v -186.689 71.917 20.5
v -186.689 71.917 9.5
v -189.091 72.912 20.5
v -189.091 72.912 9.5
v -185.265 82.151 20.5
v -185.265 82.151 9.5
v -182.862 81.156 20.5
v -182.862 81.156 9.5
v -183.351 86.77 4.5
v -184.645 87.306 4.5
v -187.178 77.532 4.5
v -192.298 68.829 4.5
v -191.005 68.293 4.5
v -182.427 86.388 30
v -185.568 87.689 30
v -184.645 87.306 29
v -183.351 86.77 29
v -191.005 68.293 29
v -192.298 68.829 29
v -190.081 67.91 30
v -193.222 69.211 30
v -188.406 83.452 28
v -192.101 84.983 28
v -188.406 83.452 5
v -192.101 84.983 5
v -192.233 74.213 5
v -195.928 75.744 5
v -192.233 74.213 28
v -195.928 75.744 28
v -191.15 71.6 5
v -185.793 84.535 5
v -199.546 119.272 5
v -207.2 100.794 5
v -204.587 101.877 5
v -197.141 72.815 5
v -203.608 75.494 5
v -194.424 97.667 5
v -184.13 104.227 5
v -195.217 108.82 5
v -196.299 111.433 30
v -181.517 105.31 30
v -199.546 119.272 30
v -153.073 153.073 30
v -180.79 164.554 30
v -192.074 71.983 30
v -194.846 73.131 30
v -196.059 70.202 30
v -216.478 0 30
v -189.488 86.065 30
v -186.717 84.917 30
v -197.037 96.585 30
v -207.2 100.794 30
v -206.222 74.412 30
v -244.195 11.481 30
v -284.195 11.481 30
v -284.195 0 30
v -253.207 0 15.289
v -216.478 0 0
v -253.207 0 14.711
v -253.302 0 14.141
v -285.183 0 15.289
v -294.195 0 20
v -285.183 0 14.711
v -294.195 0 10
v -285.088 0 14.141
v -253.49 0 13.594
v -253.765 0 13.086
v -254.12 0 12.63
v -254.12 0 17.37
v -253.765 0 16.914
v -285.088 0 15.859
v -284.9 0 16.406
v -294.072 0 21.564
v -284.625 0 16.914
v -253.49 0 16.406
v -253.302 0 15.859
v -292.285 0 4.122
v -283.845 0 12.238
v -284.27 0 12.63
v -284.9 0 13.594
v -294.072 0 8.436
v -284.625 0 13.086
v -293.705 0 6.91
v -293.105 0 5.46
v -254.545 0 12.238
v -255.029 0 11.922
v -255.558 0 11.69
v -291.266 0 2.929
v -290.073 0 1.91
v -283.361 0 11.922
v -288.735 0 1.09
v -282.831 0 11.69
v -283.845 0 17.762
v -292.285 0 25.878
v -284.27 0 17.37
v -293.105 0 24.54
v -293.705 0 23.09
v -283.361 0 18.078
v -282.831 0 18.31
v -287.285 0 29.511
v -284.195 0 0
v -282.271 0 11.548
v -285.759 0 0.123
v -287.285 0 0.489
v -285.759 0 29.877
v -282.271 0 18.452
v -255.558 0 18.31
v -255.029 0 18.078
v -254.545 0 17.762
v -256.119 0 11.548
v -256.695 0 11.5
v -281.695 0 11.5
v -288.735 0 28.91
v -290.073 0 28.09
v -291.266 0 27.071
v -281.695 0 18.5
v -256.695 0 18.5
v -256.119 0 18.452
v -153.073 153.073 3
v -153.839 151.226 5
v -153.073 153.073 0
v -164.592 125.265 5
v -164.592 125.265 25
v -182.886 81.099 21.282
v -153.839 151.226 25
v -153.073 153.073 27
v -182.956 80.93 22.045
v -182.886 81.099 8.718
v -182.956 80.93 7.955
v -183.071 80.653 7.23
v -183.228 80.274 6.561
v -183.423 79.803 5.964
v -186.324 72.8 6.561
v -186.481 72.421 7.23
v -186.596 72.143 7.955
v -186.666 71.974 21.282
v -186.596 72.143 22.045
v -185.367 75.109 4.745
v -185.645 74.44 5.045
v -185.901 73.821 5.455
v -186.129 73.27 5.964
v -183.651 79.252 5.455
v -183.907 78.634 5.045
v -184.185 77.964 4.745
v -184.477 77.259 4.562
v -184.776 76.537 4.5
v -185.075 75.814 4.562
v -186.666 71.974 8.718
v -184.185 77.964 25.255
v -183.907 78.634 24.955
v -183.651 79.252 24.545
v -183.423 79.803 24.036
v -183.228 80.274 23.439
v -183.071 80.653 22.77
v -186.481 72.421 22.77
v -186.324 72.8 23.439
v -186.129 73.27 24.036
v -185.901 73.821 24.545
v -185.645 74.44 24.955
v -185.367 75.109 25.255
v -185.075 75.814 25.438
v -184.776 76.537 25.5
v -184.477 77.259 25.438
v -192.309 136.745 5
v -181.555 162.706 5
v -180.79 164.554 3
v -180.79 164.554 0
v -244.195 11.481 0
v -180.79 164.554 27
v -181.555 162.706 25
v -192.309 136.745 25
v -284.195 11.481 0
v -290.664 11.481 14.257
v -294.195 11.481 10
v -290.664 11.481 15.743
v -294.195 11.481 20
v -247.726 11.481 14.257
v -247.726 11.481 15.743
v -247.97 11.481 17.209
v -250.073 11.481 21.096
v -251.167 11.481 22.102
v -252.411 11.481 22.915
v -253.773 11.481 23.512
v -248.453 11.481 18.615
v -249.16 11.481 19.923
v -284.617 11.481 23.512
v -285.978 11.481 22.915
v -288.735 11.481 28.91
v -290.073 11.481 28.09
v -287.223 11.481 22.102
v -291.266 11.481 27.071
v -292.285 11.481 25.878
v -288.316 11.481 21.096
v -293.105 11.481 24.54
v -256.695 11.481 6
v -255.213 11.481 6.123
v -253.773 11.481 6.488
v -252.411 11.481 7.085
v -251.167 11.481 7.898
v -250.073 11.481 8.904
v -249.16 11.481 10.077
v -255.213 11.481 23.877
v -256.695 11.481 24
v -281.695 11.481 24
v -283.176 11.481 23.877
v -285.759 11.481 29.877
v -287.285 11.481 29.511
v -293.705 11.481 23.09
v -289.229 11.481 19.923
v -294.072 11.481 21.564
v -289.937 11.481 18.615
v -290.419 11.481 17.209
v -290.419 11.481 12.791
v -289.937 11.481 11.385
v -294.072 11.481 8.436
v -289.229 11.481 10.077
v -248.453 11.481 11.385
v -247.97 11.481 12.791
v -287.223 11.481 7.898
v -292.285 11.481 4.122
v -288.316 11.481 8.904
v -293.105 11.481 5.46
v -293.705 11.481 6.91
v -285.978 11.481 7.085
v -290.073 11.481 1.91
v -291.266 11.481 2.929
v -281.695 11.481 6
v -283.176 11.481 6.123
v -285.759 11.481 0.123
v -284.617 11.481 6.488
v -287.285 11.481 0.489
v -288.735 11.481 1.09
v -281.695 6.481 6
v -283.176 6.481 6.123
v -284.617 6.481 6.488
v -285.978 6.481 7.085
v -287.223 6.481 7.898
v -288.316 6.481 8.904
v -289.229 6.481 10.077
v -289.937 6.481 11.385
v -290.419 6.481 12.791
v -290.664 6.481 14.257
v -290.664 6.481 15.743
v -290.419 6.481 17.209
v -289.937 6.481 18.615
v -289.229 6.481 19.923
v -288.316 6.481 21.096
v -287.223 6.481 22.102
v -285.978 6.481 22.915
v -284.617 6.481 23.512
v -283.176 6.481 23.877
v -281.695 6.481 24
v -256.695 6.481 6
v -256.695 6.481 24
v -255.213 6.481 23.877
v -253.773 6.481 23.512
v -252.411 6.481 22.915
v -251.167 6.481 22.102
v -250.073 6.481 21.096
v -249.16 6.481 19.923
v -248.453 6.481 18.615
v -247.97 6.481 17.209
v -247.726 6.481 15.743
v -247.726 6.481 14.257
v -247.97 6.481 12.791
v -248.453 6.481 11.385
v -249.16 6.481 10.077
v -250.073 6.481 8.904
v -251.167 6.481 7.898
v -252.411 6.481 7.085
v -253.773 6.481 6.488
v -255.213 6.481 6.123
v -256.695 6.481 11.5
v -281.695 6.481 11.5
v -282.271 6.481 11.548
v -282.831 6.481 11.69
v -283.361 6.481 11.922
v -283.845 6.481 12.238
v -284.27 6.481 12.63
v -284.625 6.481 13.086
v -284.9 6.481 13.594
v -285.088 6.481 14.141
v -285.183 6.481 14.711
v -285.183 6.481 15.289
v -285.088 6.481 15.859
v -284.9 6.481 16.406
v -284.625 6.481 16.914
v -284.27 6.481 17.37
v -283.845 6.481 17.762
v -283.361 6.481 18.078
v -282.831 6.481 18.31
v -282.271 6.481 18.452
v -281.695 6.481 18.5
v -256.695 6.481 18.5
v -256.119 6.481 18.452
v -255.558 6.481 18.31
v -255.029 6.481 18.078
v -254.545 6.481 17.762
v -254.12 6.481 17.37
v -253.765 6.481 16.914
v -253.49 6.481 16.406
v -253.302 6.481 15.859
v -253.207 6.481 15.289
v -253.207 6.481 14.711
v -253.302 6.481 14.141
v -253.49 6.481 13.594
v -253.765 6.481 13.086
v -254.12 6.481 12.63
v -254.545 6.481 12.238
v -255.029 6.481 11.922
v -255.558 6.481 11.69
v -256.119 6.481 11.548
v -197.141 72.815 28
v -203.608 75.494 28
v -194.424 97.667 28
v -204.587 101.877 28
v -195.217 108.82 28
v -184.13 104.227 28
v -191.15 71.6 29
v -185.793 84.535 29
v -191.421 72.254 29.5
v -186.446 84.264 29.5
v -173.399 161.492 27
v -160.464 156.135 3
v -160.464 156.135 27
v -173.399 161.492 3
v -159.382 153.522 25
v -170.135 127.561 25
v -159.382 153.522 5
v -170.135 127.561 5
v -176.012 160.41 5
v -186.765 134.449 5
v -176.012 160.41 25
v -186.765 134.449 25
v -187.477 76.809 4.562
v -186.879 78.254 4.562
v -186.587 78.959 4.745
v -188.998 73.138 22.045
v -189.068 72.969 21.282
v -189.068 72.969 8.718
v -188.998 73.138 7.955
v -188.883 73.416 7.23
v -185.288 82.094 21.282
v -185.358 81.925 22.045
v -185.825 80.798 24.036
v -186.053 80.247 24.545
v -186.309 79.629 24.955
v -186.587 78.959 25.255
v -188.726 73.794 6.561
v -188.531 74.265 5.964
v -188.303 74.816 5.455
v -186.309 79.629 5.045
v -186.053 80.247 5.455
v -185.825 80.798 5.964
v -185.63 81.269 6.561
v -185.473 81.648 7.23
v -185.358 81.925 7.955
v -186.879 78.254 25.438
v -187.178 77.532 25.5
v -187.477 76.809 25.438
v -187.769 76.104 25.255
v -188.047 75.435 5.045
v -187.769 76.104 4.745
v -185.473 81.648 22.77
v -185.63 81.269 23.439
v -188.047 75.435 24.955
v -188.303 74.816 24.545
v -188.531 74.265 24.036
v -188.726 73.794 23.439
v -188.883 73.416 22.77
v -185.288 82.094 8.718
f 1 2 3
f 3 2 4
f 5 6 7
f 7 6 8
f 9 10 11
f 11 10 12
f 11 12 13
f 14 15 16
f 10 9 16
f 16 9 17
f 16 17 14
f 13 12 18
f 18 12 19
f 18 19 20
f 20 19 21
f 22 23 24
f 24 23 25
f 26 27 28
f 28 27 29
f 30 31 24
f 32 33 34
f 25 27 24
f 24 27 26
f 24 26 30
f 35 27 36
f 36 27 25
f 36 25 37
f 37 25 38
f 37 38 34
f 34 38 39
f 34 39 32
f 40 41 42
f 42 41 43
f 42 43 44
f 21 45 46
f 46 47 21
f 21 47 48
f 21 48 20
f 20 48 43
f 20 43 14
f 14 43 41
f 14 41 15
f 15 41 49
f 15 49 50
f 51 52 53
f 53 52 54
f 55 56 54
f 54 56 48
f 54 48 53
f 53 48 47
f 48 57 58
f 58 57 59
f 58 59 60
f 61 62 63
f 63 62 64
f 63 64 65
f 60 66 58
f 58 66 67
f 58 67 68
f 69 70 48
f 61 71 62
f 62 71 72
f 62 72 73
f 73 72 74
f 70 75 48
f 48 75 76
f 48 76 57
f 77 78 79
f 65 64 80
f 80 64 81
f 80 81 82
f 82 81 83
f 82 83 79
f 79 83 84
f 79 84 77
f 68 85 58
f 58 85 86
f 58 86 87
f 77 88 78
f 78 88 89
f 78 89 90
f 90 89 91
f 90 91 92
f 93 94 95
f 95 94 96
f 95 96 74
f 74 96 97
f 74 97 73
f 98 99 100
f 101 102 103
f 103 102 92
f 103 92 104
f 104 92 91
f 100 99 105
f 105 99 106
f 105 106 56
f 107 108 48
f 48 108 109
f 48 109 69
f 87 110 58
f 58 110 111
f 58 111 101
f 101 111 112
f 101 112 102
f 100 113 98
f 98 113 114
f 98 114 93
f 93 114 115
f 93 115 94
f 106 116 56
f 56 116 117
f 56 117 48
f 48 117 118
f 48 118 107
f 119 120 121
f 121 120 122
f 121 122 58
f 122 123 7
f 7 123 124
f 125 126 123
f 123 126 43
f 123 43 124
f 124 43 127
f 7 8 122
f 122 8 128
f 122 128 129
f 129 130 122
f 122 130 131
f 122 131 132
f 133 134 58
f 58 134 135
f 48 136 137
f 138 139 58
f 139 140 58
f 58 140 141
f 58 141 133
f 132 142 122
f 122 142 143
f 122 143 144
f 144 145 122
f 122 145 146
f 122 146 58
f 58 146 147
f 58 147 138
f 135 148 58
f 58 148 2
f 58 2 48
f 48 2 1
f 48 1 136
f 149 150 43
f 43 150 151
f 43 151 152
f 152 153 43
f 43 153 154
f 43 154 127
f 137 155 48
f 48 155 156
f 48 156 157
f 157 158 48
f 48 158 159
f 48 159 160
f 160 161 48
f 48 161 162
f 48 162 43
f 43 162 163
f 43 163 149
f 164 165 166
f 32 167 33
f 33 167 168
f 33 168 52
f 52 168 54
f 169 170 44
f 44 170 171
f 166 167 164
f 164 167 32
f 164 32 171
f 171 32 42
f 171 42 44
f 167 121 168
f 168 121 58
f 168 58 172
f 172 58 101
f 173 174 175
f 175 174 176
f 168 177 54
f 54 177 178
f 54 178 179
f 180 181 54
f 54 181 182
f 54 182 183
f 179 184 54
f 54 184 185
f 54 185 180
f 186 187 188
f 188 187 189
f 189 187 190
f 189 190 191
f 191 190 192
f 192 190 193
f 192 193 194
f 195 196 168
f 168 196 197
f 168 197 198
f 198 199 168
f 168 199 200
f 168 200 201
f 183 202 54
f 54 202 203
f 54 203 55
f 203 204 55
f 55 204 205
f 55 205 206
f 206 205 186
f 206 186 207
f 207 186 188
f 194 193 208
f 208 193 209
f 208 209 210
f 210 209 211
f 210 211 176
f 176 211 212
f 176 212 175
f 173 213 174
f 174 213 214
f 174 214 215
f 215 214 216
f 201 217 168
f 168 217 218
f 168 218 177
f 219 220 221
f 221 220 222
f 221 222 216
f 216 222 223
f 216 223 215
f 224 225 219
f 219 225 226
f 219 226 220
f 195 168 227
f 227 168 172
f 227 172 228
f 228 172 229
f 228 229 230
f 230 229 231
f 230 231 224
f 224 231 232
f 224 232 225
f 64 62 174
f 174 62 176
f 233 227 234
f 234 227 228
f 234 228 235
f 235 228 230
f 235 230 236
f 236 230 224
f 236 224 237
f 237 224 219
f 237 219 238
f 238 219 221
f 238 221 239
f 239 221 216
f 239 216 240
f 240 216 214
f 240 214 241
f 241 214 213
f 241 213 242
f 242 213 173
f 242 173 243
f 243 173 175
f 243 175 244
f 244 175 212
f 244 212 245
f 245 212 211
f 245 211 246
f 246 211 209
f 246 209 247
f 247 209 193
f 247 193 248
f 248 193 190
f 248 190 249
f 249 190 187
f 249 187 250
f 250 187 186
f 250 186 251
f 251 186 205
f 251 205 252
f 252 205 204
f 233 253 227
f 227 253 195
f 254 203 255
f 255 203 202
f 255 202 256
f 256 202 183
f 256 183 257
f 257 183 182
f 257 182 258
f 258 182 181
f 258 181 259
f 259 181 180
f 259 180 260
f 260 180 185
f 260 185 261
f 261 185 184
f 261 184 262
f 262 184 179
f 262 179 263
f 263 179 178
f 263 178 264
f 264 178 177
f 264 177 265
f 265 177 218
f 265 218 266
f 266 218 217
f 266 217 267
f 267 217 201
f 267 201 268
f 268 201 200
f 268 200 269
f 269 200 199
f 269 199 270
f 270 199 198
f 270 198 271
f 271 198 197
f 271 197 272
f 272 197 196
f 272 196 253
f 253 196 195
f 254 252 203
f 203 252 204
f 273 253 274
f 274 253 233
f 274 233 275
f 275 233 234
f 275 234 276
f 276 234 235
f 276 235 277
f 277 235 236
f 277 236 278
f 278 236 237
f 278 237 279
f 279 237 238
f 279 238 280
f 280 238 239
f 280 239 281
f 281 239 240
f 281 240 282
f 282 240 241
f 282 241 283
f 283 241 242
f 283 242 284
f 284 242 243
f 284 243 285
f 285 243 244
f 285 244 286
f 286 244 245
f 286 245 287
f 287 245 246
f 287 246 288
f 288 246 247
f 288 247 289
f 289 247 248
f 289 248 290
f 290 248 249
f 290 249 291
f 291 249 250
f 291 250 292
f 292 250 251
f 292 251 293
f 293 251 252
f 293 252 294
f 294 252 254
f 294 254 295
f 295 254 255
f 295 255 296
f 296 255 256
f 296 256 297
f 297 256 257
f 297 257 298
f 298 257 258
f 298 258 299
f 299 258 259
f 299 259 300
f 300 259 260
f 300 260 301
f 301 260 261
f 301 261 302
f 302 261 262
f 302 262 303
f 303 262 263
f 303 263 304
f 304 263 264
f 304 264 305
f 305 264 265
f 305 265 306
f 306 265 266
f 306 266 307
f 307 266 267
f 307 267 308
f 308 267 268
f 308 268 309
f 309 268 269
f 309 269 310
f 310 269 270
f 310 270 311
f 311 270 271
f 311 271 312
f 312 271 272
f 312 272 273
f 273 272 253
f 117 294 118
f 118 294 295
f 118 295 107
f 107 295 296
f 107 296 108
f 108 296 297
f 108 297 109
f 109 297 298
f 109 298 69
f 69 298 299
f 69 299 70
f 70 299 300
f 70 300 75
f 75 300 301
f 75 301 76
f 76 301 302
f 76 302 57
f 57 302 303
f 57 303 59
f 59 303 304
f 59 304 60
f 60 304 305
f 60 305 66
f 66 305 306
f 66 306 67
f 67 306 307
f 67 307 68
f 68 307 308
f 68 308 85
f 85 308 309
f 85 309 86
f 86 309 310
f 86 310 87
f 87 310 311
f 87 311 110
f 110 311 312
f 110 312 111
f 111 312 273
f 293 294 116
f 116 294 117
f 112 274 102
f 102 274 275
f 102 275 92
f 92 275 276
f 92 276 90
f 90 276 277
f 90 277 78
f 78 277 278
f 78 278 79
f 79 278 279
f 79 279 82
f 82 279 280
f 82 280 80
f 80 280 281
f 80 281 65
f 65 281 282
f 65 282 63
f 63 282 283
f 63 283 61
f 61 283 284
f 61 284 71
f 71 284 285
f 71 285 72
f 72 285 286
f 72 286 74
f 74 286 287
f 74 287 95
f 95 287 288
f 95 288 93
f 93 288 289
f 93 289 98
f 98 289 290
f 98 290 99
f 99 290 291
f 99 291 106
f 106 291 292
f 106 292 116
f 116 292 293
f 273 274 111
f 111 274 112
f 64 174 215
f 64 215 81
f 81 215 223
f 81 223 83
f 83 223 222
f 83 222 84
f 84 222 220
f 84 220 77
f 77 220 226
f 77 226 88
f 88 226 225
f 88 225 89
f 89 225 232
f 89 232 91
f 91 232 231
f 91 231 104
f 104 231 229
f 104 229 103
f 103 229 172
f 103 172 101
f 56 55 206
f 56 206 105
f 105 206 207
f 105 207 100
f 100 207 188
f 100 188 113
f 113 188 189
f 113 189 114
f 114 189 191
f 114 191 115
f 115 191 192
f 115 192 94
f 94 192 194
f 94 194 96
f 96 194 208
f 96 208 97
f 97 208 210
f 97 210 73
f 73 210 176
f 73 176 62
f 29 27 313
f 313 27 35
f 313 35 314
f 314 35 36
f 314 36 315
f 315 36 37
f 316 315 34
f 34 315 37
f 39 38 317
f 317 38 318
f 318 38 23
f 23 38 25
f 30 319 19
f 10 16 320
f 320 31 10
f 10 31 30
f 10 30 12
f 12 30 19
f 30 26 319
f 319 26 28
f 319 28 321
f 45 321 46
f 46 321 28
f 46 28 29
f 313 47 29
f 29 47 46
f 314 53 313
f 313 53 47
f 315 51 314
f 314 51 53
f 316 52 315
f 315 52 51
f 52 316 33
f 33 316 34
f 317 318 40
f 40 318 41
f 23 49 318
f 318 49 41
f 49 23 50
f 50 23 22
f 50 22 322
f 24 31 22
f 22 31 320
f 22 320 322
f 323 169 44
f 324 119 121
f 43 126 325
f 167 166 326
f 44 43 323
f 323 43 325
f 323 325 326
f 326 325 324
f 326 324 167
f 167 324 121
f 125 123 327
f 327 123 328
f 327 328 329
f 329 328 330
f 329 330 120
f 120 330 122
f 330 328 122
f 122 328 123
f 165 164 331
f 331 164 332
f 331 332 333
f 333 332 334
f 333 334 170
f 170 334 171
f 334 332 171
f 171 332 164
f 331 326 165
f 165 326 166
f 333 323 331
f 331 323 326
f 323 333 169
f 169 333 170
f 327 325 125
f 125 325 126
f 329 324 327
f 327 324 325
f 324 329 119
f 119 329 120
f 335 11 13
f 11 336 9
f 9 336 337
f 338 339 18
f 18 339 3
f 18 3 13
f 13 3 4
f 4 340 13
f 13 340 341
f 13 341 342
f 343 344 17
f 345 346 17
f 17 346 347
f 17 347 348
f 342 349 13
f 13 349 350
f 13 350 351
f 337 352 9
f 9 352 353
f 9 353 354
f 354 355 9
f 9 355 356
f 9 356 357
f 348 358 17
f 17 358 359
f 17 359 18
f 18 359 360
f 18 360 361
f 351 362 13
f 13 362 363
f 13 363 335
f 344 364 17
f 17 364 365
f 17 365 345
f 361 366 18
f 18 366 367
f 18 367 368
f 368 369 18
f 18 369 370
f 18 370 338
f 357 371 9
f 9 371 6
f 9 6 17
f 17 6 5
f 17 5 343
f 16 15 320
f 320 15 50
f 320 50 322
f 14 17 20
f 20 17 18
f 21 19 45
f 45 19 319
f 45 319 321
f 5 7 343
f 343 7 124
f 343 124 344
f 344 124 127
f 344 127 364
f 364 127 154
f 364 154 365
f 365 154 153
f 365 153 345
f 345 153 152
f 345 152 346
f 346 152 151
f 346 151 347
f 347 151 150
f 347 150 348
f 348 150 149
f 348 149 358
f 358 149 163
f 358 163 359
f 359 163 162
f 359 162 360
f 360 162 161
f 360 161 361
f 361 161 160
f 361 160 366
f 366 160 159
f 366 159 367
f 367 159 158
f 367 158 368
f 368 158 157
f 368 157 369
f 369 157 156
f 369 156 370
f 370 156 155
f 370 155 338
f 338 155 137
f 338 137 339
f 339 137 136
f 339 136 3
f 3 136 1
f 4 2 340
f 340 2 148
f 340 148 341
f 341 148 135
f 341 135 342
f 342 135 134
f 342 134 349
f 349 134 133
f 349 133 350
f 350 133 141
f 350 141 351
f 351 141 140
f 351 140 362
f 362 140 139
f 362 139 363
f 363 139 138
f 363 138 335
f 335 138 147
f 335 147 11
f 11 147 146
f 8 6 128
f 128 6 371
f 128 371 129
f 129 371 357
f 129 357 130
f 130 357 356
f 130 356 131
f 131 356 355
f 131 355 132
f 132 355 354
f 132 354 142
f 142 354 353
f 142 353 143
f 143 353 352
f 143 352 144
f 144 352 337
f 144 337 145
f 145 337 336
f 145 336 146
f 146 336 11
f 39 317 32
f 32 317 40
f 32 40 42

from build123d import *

# Parameters (mm, degrees)
BOSS_EXTRUDE1_DEPTH = 30
SKETCH4_W           = 30
SKETCH4_H           = 11.480502971
BOSS_EXTRUDE2_DEPTH = 50
CUT_EXTRUDE1_DEPTH  = 5
CUT_EXTRUDE3_DEPTH  = 6.480502971
FILLET1_R           = 10
CHAMFER3_SIZE       = 22.5
CHAMFER3_SIZE2      = 8.610377228
CHAMFER1_SIZE       = 15
CHAMFER1_SIZE2      = 20.645728807
CHAMFER2_SIZE2      = 20.645728807
CHAMFER2_SIZE       = 15
CUT_EXTRUDE4_DEPTH  = 25
CUT_EXTRUDE5_DEPTH  = 25
SKETCH9_W           = 20.645728807
SKETCH9_H           = 30
CUT_EXTRUDE6_DEPTH  = 40
SKETCH10_W          = 10
SKETCH10_H          = 12.413129657
BOSS_EXTRUDE3_DEPTH = 12
SKETCH11_W          = 31
SKETCH11_H          = 30
CUT_EXTRUDE7_DEPTH  = 2
SKETCH12_W          = 25.5
SKETCH12_H          = 20
CUT_EXTRUDE8_DEPTH  = 4
CHAMFER4_SIZE       = 2
CUT_EXTRUDE9_DEPTH  = 30
SKETCH16_W          = 6
SKETCH16_H          = 20
CUT_EXTRUDE10_DEPTH = 30.1
CHAMFER6_SIZE       = 2
BOSS_EXTRUDE4_DEPTH = 25.5
SKETCH18_W          = 2.6
SKETCH18_H          = 4.5
BOSS_EXTRUDE5_DEPTH = 10
CHAMFER7_SIZE       = 1
FILLET2_R           = 5
CHAMFER8_SIZE       = 8


with BuildPart() as part:
    # Sketch1 → Boss-Extrude1 (new body)
    with BuildSketch(Plane.XY):
        Polygon((0, 216.478440058), (-153.073372946, 153.073372946), (-216.478440058, 0), (-244.194826034, 0), (-244.194826034, 11.480502971), (-176.034378888, 176.034378888), (0, 248.950206067), align=None)
    extrude(amount=BOSS_EXTRUDE1_DEPTH)

    # Sketch4 → Boss-Extrude2 (add)
    with BuildSketch(Plane.ZY.offset(244.194826034)):
        with Locations((15, 5.740251485)):
            Rectangle(SKETCH4_W, SKETCH4_H)
    extrude(amount=BOSS_EXTRUDE2_DEPTH)

    # Sketch5 → Cut-Extrude1 (cut)
    with BuildSketch(Plane(origin=(0, 11.480502971, 0), x_dir=(1, 0, 0), z_dir=(0, 1, 0))):
        with BuildLine():
            Line((-281.694826034, -6), (-256.694826034, -6))
            ThreePointArc((-256.694826034, -6), (-247.694826034, -15), (-256.694826034, -24))
            Line((-256.694826034, -24), (-281.694826034, -24))
            ThreePointArc((-281.694826034, -24), (-290.694826034, -15), (-281.694826034, -6))
        make_face()
    extrude(amount=-CUT_EXTRUDE1_DEPTH, mode=Mode.SUBTRACT)

    # Sketch7 → Cut-Extrude3 (cut)
    with BuildSketch(Plane(origin=(0, 6.480502971, 0), x_dir=(1, 0, 0), z_dir=(0, 1, 0))):
        with BuildLine():
            Line((-256.694826034, -11.5), (-281.694826034, -11.5))
            ThreePointArc((-281.694826034, -11.5), (-285.194826034, -15), (-281.694826034, -18.5))
            Line((-281.694826034, -18.5), (-256.694826034, -18.5))
            ThreePointArc((-256.694826034, -18.5), (-253.194826034, -15), (-256.694826034, -11.5))
        make_face()
    extrude(amount=-CUT_EXTRUDE3_DEPTH, mode=Mode.SUBTRACT)

    # Fillet1
    fillet1_edges = [part.edges().sort_by_distance(p)[0] for p in [
        (-294.194826034, 5.740251485, 0),
        (-294.194826034, 5.740251485, 30),
    ]]
    fillet(fillet1_edges, radius=FILLET1_R)

    # Chamfer3
    chamfer3_edges = [part.edges().sort_by_distance(p)[0] for p in [
        (0, 248.950206067, 15),
    ]]
    chamfer3_side = [part.faces().sort_by_distance(p)[0] for p in [
        (-88.017189444, 212.492292478, 15),
    ]]
    chamfer(chamfer3_edges, length=CHAMFER3_SIZE, length2=CHAMFER3_SIZE2, reference=chamfer3_side[0])

    # Chamfer1
    chamfer1_edges = [part.edges().sort_by_distance(p)[0] for p in [
        (0, 228.409134449, 0),
    ]]
    chamfer1_side = [part.faces().sort_by_distance(p)[0] for p in [
        (0, 228.409134449, 15),
    ]]
    chamfer(chamfer1_edges, length=CHAMFER1_SIZE, length2=CHAMFER1_SIZE2, reference=chamfer1_side[0])

    # Chamfer2
    chamfer2_edges = [part.edges().sort_by_distance(p)[0] for p in [
        (0, 228.409134449, 30),
    ]]
    chamfer2_side = [part.faces().sort_by_distance(p)[0] for p in [
        (0, 228.409134449, 29.7),
    ]]
    chamfer(chamfer2_edges, length=CHAMFER2_SIZE - 0.0001, length2=CHAMFER2_SIZE2 - 0.0001, reference=chamfer2_side[0])  # a hair under: the kernel refuses the full size

    # Sketch3 → Cut-Extrude4 (cut)
    with BuildSketch(Plane.XY.offset(30)):
        Polygon((-186.689323664, 71.91728881), (-182.86248934, 81.156084136), (-192.101284666, 84.982918459), (-184.129988769, 104.227329121), (-202.60757942, 111.880997769), (-206.434413743, 102.642202444), (-194.423979821, 97.667317823), (-203.608382197, 75.494209043), (-197.14122547, 72.815425016), (-195.928118989, 75.744123134), align=None)
        Polygon((-81.156084136, 182.86248934), (-71.91728881, 186.689323664), (-75.744123134, 195.928118989), (-72.815425016, 197.14122547), (-75.494209043, 203.608382197), (-97.667317823, 194.423979821), (-102.642202444, 206.434413743), (-111.880997769, 202.60757942), (-106.906113148, 190.597145497), (-104.227329121, 184.129988769), (-84.982918459, 192.101284666), align=None)
    extrude(amount=-CUT_EXTRUDE4_DEPTH, mode=Mode.SUBTRACT)

    # Sketch8 → Cut-Extrude5 (cut)
    with BuildSketch(Plane.XY.offset(30)):
        Polygon((-66.282610192, 194.435244969), (-67.813343921, 198.130763099), (-66.889464389, 198.513446531), (-70.716298712, 207.752241857), (-71.640178245, 207.369558424), (-73.170911974, 211.065076554), (-72.247032442, 211.447759987), (-74.925816468, 217.914916714), (-46.28555096, 229.778103118), (-43.606766934, 223.31094639), (-38.987369271, 225.224363552), (-37.456635542, 221.528845422), (-42.076033204, 219.61542826), (-38.249198881, 210.376632935), (-33.629801218, 212.290050097), (-32.099067489, 208.594531967), align=None)
    extrude(amount=-CUT_EXTRUDE5_DEPTH, mode=Mode.SUBTRACT)

    # Sketch9 → Cut-Extrude6 (cut)
    with BuildSketch(Plane(origin=(0, 240.339828839, 0), x_dir=(1, 0, 0), z_dir=(0, 1, 0))):
        with Locations((-10.322864404, -15)):
            Rectangle(SKETCH9_W, SKETCH9_H)
    extrude(amount=-CUT_EXTRUDE6_DEPTH, mode=Mode.SUBTRACT)


with BuildPart() as cut_extrude6_kept_piece:
    # of the separate pieces the step leaves, the one the design keeps (cut_extrude6_pieces_kept)
    add(part.part.solids().sort_by_distance((-20.787289482, 240.339828839, 30))[0])

    # Sketch10 → Boss-Extrude3 (add)
    with BuildSketch(Plane(origin=(-20.645728807, 0, 0), x_dir=(0, 0, -1), z_dir=(1, 0, 0))):
        with Locations((-15, 224.13326401)):
            Rectangle(SKETCH10_W, SKETCH10_H)
    extrude(amount=BOSS_EXTRUDE3_DEPTH)

    # Sketch11 → Cut-Extrude7 (cut)
    with BuildSketch(Plane(origin=(-76.536686473, 184.775906502, 0), x_dir=(0.9238795325112865, 0.38268343236509045, 0), z_dir=(0.38268343236509045, -0.9238795325112865, 0))):
        with Locations((0.5, 15)):
            Rectangle(SKETCH11_W, SKETCH11_H)
    extrude(amount=-CUT_EXTRUDE7_DEPTH, mode=Mode.SUBTRACT)

    # Sketch12 → Cut-Extrude8 (cut)
    with BuildSketch(Plane(origin=(-184.775906502, 76.536686473, 0), x_dir=(0, 0, -1), z_dir=(0.9238795325112872, -0.38268343236508917, 0))):
        with Locations((-17.25, 0)):
            Rectangle(SKETCH12_W, SKETCH12_H)
    extrude(amount=-CUT_EXTRUDE8_DEPTH, mode=Mode.SUBTRACT)

    # Chamfer4
    chamfer4_edges = [cut_extrude6_kept_piece.edges().sort_by_distance(p)[0] for p in [
        (-111.880997769, 202.60757942, 17.5),
        (-102.642202444, 206.434413743, 17.5),
        (-83.45218473, 188.405766535, 30),
        (-74.279774075, 196.534672229, 30),
        (-74.154817029, 200.374803834, 30),
        (-86.580763433, 199.016181009, 30),
        (-100.154760133, 200.429196782, 30),
        (-108.054163445, 193.368784094, 30),
        (-94.60512379, 188.115636717, 30),
        (-206.434413743, 102.642202444, 17.5),
        (-188.115636717, 94.60512379, 30),
        (-193.368784094, 108.054163445, 30),
        (-200.429196782, 100.154760133, 30),
        (-199.016181009, 86.580763433, 30),
        (-200.374803834, 74.154817029, 30),
        (-196.534672229, 74.279774075, 30),
        (-193.156480392, 74.596072837, 30),
        (-49.19083884, 201.514888468, 30),
        (-32.864434353, 210.442291032, 30),
        (-40.162616043, 214.996030597, 30),
        (-38.222002407, 223.376604487, 30),
        (-72.40554511, 209.217317489, 30),
        (-67.047977056, 196.283004034, 30),
        (-74.213389405, 192.232600859, 30),
        (-81.921451, 184.710248405, 17.5),
        (-72.682655675, 188.537082729, 17.5),
        (-189.329646068, 83.834868162, 30),
        (-186.55800747, 82.686817865, 17.5),
        (-190.384841794, 73.44802254, 17.5),
    ]]
    chamfer(chamfer4_edges, length=CHAMFER4_SIZE)

    # Sketch13 → Cut-Extrude9 (cut)
    with BuildSketch(Plane(origin=(0, 0, 0), x_dir=(-1, 0, 0), z_dir=(0, 0, -1))):
        Polygon((180.789758921, 164.553875917), (153.073372946, 153.073372946), (-25.433862624, 226.424491684), (-10.416597064, 262.970499532), (187.527299345, 181.632585119), align=None)
    extrude(amount=-CUT_EXTRUDE9_DEPTH, mode=Mode.SUBTRACT)

    # Sketch16 → Cut-Extrude10 (cut)
    with BuildSketch(Plane(origin=(31.702533556, 76.536686473, 0), x_dir=(0.9238795325112868, -0.38268343236508956, 0), z_dir=(0.38268343236508956, 0.9238795325112868, 0))):
        with Locations((-227, -15)):
            Rectangle(SKETCH16_W, SKETCH16_H)
        with Locations((-203, -15)):
            Rectangle(SKETCH16_W, SKETCH16_H)
    extrude(amount=-CUT_EXTRUDE10_DEPTH, mode=Mode.SUBTRACT)

    # Chamfer6
    chamfer6_edges = [cut_extrude6_kept_piece.edges().sort_by_distance(p)[0] for p in [
        (-178.018120324, 163.40582562, 25),
        (-175.246481726, 162.257775323, 15),
        (-178.018120324, 163.40582562, 5),
        (-155.845011544, 154.221423243, 5),
        (-158.616650141, 155.36947354, 15),
        (-155.845011544, 154.221423243, 25),
    ]]
    chamfer(chamfer6_edges, length=CHAMFER6_SIZE)

    # Sketch17 → Boss-Extrude4 (add)
    with BuildSketch(Plane.XY.offset(4.5)):
        Polygon((-188.602740826, 67.297891148), (-191.00482761, 68.292868072), (-189.091410449, 72.912265735), (-186.689323664, 71.91728881), align=None)
        Polygon((-183.351158963, 86.770458722), (-180.949072179, 85.775481798), (-182.86248934, 81.156084136), (-185.264576125, 82.15106106), align=None)
    extrude(amount=BOSS_EXTRUDE4_DEPTH)

    # Sketch18 → Boss-Extrude5 (add)
    with BuildSketch(Plane(origin=(-1.913417162, -4.619397663, 0), x_dir=(0.9238795325112867, -0.38268343236508984, 0), z_dir=(0.38268343236508984, 0.9238795325112867, 0))):
        with Locations((-201.3, -27.75)):
            Rectangle(SKETCH18_W, SKETCH18_H)
    extrude(amount=BOSS_EXTRUDE5_DEPTH)

    # Chamfer7
    chamfer7_edges = [cut_extrude6_kept_piece.edges().sort_by_distance(p)[0] for p in [
        (-185.218615457, 85.920396229, 30),
        (-191.724233807, 70.214444176, 30),
        (-187.177993287, 77.531663397, 30),
    ]]
    chamfer(chamfer7_edges, length=CHAMFER7_SIZE)

    # Fillet2
    fillet2_edges = [cut_extrude6_kept_piece.edges().sort_by_distance(p)[0] for p in [
        (-187.890367056, 72.414777273, 25.5),
        (-184.063532733, 81.653572598, 25.5),
        (-184.063532733, 81.653572598, 4.5),
        (-187.890367056, 72.414777273, 4.5),
    ]]
    fillet(fillet2_edges, radius=FILLET2_R - 0.0001)  # a hair under: the kernel refuses the full size

    # Chamfer8
    chamfer8_edges = [cut_extrude6_kept_piece.edges().sort_by_distance(p)[0] for p in [
        (-202.60757942, 111.880997769, 16.5),
    ]]
    chamfer(chamfer8_edges, length=CHAMFER8_SIZE)


solid = cut_extrude6_kept_piece.part
